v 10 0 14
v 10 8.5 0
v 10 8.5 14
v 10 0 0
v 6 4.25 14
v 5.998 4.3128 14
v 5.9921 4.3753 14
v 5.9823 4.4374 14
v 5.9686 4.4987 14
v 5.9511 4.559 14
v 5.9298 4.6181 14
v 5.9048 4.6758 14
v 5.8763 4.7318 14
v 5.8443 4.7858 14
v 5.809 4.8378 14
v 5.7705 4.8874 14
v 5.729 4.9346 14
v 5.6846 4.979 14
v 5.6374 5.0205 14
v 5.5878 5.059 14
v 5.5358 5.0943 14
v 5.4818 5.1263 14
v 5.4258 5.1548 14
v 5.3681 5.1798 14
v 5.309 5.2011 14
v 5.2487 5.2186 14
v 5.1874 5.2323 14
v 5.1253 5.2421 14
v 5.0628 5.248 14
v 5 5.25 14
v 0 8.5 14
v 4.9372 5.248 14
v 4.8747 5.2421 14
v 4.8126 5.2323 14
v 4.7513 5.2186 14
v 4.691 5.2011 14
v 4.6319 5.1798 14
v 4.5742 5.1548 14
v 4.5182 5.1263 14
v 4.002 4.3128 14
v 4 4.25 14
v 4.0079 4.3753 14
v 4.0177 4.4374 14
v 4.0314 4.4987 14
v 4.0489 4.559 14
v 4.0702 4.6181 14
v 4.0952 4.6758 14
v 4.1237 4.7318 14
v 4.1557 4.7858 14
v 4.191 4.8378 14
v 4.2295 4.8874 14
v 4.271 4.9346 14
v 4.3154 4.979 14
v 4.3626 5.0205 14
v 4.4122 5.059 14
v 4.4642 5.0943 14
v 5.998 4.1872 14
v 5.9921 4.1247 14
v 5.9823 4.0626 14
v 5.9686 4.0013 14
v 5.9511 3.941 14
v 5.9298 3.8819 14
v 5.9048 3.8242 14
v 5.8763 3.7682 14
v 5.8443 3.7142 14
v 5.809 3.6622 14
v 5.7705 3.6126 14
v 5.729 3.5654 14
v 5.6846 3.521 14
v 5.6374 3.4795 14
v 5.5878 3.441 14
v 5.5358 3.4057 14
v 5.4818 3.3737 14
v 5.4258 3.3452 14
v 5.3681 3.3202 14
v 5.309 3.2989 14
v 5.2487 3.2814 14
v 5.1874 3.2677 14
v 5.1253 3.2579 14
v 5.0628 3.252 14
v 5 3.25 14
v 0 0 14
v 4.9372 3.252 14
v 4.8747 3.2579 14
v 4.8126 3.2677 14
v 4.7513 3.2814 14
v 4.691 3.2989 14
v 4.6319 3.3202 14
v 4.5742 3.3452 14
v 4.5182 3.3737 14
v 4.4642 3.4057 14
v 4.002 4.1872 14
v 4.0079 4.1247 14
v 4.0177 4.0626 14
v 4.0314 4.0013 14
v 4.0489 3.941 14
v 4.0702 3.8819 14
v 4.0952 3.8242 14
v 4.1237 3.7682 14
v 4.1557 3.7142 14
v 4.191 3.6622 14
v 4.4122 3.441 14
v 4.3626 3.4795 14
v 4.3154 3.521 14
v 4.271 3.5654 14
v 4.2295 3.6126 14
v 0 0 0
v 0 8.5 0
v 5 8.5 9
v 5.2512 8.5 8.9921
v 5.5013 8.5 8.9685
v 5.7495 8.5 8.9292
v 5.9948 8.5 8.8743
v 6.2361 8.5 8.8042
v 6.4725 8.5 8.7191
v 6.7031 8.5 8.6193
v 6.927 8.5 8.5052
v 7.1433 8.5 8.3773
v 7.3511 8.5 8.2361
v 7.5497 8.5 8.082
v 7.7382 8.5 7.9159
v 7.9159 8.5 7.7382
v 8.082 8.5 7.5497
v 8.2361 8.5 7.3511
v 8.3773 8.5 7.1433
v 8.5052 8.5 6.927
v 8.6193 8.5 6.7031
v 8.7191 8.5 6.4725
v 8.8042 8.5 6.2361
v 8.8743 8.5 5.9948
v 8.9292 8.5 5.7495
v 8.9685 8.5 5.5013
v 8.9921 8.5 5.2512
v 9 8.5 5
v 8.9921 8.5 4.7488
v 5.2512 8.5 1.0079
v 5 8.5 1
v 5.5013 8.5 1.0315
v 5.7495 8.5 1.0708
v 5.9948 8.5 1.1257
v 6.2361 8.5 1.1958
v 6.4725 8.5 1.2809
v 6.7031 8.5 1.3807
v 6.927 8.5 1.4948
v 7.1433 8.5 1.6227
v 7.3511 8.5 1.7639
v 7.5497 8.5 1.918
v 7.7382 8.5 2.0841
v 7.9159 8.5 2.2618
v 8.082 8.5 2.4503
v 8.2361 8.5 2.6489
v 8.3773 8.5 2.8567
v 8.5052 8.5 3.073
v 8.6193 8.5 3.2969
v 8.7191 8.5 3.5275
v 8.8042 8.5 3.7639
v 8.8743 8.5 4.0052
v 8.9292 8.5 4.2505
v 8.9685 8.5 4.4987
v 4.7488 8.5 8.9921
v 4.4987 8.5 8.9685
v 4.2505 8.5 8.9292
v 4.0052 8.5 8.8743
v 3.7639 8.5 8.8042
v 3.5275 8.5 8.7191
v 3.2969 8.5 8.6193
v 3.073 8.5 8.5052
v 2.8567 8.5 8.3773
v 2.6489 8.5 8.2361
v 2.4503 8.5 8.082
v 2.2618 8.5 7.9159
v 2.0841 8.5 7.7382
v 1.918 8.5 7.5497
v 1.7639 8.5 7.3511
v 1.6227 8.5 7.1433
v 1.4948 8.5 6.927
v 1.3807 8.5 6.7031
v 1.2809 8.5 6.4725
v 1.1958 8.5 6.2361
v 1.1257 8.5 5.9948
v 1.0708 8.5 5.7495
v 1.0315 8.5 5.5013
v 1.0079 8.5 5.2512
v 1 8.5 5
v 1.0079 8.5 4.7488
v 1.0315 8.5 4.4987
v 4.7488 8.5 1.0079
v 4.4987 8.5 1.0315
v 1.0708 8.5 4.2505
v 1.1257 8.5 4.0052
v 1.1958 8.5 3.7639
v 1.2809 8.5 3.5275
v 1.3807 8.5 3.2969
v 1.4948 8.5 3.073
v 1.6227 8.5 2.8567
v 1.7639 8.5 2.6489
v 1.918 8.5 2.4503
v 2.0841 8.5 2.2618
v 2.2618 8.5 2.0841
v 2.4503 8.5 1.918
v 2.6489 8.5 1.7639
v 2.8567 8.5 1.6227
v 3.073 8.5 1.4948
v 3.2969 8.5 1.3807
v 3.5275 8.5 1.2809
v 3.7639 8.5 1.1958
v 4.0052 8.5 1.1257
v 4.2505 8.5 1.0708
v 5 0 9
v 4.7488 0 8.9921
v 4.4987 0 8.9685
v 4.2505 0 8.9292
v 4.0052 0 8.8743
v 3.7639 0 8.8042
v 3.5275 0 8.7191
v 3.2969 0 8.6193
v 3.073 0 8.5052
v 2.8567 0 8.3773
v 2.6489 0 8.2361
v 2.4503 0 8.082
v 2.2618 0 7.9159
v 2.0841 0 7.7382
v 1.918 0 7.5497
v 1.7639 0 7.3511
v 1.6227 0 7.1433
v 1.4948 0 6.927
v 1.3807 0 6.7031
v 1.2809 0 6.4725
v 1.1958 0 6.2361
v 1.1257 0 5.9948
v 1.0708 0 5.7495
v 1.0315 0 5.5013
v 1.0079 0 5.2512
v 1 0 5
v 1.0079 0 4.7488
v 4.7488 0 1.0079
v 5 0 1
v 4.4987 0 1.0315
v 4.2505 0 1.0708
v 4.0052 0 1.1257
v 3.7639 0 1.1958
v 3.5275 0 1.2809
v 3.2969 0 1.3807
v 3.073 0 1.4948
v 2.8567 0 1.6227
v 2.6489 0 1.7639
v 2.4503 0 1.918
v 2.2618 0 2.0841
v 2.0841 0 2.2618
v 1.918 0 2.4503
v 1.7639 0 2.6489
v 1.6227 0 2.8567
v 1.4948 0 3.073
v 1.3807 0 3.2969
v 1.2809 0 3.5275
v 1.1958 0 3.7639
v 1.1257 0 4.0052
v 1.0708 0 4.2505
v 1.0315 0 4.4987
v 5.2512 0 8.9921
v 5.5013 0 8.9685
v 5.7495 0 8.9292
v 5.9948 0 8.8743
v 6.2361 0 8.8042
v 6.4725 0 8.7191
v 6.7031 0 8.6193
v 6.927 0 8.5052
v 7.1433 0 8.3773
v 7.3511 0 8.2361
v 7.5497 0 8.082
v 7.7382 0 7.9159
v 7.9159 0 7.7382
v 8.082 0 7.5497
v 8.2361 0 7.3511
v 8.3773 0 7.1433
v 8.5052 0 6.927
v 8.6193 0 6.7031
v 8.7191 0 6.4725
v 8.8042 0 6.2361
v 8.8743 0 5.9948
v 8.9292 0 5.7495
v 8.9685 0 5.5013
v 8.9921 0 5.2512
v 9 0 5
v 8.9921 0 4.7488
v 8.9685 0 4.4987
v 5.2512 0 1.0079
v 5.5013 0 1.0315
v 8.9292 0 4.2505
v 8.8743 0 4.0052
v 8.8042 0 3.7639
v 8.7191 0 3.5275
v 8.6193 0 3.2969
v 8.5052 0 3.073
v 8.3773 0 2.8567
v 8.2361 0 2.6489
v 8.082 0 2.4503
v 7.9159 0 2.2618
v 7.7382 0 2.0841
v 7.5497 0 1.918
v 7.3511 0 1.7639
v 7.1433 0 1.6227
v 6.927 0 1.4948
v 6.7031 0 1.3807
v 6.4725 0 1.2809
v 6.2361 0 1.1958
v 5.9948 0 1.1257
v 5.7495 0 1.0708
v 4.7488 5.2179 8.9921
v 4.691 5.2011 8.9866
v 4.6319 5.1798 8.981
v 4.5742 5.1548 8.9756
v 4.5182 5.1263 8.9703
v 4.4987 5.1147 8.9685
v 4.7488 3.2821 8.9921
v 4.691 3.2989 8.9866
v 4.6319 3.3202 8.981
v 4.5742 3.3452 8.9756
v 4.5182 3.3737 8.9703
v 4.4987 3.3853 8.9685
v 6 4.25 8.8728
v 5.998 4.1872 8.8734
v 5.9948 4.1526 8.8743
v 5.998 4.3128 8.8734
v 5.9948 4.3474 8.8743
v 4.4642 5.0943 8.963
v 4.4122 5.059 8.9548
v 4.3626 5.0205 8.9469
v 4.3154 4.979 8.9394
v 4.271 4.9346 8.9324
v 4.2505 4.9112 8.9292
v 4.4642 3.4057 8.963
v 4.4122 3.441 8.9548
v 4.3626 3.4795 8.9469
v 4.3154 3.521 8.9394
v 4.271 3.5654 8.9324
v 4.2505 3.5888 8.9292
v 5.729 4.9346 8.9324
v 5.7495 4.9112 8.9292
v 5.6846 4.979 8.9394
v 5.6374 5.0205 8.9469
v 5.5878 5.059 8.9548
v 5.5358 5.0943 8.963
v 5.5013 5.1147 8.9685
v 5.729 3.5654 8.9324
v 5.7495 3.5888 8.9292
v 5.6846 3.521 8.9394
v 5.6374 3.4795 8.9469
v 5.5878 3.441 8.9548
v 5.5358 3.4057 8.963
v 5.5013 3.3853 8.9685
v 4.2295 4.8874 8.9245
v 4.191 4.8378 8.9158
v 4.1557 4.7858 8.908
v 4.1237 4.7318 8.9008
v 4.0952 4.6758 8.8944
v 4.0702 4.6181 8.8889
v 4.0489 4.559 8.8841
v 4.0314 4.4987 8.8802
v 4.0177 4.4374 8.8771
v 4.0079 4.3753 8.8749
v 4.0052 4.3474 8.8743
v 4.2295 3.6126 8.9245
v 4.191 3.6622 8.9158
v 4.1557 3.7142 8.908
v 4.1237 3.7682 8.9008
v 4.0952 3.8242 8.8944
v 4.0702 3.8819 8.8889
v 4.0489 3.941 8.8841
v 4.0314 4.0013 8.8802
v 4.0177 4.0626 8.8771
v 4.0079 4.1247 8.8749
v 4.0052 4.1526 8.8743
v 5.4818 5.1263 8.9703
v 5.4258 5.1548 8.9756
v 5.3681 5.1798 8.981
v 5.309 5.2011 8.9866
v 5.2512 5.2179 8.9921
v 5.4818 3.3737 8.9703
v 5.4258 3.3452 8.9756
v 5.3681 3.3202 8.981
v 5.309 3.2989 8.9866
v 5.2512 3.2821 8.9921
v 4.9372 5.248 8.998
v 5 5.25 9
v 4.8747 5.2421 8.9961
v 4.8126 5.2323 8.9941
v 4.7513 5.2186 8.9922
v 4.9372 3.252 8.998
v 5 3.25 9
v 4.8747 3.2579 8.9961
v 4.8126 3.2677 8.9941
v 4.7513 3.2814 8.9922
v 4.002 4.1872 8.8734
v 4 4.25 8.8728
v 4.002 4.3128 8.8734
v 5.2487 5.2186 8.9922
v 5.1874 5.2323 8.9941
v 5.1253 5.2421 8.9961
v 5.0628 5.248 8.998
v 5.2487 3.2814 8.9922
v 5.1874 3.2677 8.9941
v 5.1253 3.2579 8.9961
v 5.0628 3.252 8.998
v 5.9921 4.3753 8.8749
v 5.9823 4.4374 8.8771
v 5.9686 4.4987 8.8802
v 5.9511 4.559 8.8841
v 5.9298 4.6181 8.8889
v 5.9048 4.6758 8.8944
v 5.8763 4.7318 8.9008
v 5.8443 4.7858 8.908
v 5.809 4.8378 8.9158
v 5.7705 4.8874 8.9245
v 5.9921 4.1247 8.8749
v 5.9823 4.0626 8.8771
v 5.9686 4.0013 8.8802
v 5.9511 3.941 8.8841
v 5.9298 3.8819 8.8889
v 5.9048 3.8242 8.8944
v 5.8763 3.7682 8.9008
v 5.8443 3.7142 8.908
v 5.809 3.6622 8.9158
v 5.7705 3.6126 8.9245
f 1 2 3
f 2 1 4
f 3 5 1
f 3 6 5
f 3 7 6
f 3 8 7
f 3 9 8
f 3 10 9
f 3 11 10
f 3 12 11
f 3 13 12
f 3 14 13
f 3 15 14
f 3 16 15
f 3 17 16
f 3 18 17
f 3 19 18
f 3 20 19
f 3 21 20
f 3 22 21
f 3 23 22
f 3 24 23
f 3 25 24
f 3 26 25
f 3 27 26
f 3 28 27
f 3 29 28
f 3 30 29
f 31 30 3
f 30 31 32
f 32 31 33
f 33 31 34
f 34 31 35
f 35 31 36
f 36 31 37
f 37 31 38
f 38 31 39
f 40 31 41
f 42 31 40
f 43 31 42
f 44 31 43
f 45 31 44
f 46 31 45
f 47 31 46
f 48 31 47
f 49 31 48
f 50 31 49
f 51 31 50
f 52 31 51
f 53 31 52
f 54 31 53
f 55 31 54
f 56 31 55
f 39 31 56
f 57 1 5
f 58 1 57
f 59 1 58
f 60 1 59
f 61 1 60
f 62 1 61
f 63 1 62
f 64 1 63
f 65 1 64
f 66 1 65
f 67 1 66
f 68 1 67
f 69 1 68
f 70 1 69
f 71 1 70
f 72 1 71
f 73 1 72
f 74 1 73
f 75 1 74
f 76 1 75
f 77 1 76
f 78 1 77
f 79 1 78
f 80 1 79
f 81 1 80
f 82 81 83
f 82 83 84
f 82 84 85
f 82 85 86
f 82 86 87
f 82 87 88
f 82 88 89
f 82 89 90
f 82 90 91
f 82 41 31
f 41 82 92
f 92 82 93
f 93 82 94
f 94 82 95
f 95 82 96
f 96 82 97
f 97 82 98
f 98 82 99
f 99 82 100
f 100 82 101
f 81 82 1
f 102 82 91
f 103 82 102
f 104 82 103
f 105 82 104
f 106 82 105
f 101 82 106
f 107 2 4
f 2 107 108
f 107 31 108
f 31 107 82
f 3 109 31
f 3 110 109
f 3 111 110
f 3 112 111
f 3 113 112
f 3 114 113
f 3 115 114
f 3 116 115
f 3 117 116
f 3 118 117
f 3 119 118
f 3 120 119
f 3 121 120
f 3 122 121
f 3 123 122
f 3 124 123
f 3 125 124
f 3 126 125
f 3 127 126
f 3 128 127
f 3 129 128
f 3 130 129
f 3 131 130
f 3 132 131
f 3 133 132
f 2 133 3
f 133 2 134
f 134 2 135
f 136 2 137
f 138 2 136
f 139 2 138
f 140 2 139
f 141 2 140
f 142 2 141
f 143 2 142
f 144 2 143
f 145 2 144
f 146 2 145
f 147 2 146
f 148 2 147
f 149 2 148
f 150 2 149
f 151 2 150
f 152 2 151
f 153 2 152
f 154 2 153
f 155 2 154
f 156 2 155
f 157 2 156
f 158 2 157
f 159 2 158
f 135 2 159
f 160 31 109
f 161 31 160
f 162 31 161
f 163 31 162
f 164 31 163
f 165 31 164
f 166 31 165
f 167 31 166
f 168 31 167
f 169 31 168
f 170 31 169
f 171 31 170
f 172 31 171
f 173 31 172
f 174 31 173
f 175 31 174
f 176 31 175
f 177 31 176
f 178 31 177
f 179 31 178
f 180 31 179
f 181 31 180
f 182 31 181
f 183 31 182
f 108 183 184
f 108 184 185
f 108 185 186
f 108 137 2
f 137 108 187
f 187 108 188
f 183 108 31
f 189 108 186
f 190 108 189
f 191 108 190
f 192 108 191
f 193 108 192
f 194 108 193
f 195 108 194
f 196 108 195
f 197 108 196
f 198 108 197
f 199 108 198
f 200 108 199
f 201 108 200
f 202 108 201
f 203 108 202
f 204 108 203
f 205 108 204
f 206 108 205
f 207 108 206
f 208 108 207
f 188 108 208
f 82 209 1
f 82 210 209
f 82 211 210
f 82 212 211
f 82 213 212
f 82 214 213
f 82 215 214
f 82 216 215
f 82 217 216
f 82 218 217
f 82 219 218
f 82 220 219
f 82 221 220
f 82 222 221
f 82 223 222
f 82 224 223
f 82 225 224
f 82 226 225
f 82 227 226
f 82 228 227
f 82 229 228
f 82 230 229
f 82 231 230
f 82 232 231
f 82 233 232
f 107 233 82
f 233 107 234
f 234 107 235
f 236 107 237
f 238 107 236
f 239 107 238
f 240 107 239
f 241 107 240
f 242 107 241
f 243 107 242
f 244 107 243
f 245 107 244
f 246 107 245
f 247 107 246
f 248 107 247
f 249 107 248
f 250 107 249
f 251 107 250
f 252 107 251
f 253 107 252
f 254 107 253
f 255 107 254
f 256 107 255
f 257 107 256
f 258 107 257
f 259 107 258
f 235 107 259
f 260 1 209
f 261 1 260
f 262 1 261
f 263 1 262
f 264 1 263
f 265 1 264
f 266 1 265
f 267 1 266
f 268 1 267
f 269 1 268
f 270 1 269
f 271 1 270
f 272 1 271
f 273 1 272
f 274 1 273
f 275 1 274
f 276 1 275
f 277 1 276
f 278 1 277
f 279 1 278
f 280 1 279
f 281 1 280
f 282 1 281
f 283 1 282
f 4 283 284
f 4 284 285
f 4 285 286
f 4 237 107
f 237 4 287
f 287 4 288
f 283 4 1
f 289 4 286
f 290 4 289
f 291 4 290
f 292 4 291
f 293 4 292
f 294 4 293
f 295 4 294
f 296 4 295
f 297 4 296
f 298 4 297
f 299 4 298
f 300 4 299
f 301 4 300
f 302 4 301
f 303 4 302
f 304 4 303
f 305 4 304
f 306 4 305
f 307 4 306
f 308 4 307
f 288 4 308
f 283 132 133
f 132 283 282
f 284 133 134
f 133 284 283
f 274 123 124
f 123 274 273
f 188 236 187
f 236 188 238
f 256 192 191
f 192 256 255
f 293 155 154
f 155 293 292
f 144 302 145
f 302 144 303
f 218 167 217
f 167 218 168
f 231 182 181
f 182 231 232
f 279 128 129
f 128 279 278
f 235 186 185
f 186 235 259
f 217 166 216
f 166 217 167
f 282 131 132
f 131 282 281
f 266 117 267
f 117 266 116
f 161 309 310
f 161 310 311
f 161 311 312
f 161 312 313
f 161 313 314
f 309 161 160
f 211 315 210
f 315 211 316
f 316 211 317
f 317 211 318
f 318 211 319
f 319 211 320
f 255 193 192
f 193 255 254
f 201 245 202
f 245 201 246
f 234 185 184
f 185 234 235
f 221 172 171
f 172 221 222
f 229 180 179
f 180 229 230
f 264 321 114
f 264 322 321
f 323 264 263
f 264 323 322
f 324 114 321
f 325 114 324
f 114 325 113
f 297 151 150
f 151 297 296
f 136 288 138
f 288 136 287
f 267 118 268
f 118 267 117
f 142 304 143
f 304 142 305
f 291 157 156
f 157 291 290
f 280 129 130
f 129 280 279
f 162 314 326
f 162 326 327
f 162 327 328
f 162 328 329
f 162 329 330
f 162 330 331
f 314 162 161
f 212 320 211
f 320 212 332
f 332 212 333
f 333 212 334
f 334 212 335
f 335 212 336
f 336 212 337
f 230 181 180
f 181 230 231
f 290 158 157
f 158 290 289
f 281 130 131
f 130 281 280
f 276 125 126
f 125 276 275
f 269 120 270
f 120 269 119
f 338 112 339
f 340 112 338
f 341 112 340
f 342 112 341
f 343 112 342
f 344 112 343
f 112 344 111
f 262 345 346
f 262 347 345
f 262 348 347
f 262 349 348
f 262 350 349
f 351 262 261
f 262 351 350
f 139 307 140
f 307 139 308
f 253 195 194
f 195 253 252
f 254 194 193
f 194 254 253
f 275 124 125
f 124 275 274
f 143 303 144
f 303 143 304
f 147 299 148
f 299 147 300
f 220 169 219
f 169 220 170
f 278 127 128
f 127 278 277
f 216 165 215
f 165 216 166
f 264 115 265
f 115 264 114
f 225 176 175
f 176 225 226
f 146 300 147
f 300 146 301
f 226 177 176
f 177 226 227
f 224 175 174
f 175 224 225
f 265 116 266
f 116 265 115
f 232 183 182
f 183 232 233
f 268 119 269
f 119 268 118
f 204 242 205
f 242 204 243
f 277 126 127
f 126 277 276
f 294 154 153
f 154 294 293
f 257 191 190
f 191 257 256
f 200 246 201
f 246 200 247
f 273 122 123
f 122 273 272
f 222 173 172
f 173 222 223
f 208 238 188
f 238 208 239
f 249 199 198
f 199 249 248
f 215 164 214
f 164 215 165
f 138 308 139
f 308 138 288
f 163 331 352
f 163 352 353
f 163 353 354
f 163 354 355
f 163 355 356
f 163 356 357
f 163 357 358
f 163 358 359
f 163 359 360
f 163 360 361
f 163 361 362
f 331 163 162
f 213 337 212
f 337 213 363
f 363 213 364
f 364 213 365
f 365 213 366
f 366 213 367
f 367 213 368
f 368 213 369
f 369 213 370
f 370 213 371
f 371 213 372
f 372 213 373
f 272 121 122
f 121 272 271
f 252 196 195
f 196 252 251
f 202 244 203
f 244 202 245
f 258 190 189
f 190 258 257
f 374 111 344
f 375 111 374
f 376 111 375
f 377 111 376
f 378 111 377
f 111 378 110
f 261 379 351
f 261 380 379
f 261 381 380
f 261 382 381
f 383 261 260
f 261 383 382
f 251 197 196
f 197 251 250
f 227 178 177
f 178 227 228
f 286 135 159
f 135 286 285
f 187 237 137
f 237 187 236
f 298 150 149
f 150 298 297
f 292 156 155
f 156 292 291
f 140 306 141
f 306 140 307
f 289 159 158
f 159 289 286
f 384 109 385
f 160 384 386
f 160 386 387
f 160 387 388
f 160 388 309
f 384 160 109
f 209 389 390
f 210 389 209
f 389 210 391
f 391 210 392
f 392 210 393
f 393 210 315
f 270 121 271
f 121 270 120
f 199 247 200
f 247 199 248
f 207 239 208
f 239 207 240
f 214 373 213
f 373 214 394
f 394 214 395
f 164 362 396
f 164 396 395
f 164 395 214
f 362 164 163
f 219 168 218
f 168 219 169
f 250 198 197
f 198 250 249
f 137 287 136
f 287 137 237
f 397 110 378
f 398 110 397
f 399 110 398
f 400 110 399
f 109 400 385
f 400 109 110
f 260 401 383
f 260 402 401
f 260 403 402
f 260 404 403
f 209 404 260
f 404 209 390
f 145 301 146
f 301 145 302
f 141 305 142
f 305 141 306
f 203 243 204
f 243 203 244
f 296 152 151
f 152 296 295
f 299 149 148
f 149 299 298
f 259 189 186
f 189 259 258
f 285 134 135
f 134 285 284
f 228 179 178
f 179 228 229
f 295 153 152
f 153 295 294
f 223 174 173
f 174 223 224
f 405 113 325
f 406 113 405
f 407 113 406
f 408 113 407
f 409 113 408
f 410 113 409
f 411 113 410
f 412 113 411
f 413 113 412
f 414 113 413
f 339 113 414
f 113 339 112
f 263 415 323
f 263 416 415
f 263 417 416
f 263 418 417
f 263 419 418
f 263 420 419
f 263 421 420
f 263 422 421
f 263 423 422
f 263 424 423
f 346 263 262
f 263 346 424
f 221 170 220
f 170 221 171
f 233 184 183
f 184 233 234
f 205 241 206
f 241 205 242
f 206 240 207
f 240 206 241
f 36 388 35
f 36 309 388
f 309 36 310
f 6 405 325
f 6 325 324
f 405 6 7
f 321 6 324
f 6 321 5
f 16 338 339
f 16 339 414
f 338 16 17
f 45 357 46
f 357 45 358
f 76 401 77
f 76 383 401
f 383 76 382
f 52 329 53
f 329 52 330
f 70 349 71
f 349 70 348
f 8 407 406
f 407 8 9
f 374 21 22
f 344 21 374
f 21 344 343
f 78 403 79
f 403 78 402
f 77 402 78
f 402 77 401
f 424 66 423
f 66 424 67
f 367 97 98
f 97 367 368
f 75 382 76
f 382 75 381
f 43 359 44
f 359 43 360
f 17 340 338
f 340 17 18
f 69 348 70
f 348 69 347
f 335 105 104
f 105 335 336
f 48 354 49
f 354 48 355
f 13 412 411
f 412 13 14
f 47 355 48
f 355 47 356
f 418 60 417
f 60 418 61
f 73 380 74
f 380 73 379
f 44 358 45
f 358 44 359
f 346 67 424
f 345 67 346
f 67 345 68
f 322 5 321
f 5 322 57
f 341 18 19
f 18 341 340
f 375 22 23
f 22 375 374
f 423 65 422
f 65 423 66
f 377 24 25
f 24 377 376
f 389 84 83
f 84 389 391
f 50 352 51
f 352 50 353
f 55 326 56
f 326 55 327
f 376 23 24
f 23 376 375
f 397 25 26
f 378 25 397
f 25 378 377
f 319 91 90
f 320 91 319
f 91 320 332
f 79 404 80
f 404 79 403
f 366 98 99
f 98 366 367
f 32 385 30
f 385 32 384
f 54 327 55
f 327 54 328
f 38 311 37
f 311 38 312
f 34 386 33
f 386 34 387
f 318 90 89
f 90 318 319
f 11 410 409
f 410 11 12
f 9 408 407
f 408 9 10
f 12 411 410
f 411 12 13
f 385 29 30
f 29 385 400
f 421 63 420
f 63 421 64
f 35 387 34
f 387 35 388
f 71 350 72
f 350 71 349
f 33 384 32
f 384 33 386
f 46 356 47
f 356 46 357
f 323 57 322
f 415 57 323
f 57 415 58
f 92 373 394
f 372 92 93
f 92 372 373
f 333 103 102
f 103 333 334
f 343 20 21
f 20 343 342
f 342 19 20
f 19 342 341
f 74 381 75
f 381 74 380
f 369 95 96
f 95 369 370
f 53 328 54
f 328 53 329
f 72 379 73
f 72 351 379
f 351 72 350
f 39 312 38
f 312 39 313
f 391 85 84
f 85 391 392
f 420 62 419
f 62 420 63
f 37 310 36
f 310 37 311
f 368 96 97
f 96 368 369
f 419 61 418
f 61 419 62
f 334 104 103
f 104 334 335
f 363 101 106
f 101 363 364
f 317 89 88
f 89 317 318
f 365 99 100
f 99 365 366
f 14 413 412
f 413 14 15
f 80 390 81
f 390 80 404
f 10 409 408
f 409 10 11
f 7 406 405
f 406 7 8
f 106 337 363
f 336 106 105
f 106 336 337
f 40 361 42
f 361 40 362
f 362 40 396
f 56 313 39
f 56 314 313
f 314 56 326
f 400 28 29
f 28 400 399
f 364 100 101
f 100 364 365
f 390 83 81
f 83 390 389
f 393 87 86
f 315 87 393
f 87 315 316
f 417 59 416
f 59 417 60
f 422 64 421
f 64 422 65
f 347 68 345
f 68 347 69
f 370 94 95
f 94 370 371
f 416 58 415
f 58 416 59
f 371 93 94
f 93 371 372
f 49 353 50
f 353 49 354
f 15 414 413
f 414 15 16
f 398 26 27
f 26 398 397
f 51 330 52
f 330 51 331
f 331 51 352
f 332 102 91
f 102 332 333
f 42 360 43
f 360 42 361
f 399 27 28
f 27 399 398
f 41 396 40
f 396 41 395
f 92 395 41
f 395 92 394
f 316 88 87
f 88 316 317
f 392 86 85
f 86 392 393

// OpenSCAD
$fn = 100;

difference() {
    cube([10, 8.5, 14]);
    translate([5, 9.9, 5]) rotate([90, 0, 0]) cylinder(d=8, h=10);
    translate([5, 8.5/2, 5]) cylinder(d=2, h=10);
}
